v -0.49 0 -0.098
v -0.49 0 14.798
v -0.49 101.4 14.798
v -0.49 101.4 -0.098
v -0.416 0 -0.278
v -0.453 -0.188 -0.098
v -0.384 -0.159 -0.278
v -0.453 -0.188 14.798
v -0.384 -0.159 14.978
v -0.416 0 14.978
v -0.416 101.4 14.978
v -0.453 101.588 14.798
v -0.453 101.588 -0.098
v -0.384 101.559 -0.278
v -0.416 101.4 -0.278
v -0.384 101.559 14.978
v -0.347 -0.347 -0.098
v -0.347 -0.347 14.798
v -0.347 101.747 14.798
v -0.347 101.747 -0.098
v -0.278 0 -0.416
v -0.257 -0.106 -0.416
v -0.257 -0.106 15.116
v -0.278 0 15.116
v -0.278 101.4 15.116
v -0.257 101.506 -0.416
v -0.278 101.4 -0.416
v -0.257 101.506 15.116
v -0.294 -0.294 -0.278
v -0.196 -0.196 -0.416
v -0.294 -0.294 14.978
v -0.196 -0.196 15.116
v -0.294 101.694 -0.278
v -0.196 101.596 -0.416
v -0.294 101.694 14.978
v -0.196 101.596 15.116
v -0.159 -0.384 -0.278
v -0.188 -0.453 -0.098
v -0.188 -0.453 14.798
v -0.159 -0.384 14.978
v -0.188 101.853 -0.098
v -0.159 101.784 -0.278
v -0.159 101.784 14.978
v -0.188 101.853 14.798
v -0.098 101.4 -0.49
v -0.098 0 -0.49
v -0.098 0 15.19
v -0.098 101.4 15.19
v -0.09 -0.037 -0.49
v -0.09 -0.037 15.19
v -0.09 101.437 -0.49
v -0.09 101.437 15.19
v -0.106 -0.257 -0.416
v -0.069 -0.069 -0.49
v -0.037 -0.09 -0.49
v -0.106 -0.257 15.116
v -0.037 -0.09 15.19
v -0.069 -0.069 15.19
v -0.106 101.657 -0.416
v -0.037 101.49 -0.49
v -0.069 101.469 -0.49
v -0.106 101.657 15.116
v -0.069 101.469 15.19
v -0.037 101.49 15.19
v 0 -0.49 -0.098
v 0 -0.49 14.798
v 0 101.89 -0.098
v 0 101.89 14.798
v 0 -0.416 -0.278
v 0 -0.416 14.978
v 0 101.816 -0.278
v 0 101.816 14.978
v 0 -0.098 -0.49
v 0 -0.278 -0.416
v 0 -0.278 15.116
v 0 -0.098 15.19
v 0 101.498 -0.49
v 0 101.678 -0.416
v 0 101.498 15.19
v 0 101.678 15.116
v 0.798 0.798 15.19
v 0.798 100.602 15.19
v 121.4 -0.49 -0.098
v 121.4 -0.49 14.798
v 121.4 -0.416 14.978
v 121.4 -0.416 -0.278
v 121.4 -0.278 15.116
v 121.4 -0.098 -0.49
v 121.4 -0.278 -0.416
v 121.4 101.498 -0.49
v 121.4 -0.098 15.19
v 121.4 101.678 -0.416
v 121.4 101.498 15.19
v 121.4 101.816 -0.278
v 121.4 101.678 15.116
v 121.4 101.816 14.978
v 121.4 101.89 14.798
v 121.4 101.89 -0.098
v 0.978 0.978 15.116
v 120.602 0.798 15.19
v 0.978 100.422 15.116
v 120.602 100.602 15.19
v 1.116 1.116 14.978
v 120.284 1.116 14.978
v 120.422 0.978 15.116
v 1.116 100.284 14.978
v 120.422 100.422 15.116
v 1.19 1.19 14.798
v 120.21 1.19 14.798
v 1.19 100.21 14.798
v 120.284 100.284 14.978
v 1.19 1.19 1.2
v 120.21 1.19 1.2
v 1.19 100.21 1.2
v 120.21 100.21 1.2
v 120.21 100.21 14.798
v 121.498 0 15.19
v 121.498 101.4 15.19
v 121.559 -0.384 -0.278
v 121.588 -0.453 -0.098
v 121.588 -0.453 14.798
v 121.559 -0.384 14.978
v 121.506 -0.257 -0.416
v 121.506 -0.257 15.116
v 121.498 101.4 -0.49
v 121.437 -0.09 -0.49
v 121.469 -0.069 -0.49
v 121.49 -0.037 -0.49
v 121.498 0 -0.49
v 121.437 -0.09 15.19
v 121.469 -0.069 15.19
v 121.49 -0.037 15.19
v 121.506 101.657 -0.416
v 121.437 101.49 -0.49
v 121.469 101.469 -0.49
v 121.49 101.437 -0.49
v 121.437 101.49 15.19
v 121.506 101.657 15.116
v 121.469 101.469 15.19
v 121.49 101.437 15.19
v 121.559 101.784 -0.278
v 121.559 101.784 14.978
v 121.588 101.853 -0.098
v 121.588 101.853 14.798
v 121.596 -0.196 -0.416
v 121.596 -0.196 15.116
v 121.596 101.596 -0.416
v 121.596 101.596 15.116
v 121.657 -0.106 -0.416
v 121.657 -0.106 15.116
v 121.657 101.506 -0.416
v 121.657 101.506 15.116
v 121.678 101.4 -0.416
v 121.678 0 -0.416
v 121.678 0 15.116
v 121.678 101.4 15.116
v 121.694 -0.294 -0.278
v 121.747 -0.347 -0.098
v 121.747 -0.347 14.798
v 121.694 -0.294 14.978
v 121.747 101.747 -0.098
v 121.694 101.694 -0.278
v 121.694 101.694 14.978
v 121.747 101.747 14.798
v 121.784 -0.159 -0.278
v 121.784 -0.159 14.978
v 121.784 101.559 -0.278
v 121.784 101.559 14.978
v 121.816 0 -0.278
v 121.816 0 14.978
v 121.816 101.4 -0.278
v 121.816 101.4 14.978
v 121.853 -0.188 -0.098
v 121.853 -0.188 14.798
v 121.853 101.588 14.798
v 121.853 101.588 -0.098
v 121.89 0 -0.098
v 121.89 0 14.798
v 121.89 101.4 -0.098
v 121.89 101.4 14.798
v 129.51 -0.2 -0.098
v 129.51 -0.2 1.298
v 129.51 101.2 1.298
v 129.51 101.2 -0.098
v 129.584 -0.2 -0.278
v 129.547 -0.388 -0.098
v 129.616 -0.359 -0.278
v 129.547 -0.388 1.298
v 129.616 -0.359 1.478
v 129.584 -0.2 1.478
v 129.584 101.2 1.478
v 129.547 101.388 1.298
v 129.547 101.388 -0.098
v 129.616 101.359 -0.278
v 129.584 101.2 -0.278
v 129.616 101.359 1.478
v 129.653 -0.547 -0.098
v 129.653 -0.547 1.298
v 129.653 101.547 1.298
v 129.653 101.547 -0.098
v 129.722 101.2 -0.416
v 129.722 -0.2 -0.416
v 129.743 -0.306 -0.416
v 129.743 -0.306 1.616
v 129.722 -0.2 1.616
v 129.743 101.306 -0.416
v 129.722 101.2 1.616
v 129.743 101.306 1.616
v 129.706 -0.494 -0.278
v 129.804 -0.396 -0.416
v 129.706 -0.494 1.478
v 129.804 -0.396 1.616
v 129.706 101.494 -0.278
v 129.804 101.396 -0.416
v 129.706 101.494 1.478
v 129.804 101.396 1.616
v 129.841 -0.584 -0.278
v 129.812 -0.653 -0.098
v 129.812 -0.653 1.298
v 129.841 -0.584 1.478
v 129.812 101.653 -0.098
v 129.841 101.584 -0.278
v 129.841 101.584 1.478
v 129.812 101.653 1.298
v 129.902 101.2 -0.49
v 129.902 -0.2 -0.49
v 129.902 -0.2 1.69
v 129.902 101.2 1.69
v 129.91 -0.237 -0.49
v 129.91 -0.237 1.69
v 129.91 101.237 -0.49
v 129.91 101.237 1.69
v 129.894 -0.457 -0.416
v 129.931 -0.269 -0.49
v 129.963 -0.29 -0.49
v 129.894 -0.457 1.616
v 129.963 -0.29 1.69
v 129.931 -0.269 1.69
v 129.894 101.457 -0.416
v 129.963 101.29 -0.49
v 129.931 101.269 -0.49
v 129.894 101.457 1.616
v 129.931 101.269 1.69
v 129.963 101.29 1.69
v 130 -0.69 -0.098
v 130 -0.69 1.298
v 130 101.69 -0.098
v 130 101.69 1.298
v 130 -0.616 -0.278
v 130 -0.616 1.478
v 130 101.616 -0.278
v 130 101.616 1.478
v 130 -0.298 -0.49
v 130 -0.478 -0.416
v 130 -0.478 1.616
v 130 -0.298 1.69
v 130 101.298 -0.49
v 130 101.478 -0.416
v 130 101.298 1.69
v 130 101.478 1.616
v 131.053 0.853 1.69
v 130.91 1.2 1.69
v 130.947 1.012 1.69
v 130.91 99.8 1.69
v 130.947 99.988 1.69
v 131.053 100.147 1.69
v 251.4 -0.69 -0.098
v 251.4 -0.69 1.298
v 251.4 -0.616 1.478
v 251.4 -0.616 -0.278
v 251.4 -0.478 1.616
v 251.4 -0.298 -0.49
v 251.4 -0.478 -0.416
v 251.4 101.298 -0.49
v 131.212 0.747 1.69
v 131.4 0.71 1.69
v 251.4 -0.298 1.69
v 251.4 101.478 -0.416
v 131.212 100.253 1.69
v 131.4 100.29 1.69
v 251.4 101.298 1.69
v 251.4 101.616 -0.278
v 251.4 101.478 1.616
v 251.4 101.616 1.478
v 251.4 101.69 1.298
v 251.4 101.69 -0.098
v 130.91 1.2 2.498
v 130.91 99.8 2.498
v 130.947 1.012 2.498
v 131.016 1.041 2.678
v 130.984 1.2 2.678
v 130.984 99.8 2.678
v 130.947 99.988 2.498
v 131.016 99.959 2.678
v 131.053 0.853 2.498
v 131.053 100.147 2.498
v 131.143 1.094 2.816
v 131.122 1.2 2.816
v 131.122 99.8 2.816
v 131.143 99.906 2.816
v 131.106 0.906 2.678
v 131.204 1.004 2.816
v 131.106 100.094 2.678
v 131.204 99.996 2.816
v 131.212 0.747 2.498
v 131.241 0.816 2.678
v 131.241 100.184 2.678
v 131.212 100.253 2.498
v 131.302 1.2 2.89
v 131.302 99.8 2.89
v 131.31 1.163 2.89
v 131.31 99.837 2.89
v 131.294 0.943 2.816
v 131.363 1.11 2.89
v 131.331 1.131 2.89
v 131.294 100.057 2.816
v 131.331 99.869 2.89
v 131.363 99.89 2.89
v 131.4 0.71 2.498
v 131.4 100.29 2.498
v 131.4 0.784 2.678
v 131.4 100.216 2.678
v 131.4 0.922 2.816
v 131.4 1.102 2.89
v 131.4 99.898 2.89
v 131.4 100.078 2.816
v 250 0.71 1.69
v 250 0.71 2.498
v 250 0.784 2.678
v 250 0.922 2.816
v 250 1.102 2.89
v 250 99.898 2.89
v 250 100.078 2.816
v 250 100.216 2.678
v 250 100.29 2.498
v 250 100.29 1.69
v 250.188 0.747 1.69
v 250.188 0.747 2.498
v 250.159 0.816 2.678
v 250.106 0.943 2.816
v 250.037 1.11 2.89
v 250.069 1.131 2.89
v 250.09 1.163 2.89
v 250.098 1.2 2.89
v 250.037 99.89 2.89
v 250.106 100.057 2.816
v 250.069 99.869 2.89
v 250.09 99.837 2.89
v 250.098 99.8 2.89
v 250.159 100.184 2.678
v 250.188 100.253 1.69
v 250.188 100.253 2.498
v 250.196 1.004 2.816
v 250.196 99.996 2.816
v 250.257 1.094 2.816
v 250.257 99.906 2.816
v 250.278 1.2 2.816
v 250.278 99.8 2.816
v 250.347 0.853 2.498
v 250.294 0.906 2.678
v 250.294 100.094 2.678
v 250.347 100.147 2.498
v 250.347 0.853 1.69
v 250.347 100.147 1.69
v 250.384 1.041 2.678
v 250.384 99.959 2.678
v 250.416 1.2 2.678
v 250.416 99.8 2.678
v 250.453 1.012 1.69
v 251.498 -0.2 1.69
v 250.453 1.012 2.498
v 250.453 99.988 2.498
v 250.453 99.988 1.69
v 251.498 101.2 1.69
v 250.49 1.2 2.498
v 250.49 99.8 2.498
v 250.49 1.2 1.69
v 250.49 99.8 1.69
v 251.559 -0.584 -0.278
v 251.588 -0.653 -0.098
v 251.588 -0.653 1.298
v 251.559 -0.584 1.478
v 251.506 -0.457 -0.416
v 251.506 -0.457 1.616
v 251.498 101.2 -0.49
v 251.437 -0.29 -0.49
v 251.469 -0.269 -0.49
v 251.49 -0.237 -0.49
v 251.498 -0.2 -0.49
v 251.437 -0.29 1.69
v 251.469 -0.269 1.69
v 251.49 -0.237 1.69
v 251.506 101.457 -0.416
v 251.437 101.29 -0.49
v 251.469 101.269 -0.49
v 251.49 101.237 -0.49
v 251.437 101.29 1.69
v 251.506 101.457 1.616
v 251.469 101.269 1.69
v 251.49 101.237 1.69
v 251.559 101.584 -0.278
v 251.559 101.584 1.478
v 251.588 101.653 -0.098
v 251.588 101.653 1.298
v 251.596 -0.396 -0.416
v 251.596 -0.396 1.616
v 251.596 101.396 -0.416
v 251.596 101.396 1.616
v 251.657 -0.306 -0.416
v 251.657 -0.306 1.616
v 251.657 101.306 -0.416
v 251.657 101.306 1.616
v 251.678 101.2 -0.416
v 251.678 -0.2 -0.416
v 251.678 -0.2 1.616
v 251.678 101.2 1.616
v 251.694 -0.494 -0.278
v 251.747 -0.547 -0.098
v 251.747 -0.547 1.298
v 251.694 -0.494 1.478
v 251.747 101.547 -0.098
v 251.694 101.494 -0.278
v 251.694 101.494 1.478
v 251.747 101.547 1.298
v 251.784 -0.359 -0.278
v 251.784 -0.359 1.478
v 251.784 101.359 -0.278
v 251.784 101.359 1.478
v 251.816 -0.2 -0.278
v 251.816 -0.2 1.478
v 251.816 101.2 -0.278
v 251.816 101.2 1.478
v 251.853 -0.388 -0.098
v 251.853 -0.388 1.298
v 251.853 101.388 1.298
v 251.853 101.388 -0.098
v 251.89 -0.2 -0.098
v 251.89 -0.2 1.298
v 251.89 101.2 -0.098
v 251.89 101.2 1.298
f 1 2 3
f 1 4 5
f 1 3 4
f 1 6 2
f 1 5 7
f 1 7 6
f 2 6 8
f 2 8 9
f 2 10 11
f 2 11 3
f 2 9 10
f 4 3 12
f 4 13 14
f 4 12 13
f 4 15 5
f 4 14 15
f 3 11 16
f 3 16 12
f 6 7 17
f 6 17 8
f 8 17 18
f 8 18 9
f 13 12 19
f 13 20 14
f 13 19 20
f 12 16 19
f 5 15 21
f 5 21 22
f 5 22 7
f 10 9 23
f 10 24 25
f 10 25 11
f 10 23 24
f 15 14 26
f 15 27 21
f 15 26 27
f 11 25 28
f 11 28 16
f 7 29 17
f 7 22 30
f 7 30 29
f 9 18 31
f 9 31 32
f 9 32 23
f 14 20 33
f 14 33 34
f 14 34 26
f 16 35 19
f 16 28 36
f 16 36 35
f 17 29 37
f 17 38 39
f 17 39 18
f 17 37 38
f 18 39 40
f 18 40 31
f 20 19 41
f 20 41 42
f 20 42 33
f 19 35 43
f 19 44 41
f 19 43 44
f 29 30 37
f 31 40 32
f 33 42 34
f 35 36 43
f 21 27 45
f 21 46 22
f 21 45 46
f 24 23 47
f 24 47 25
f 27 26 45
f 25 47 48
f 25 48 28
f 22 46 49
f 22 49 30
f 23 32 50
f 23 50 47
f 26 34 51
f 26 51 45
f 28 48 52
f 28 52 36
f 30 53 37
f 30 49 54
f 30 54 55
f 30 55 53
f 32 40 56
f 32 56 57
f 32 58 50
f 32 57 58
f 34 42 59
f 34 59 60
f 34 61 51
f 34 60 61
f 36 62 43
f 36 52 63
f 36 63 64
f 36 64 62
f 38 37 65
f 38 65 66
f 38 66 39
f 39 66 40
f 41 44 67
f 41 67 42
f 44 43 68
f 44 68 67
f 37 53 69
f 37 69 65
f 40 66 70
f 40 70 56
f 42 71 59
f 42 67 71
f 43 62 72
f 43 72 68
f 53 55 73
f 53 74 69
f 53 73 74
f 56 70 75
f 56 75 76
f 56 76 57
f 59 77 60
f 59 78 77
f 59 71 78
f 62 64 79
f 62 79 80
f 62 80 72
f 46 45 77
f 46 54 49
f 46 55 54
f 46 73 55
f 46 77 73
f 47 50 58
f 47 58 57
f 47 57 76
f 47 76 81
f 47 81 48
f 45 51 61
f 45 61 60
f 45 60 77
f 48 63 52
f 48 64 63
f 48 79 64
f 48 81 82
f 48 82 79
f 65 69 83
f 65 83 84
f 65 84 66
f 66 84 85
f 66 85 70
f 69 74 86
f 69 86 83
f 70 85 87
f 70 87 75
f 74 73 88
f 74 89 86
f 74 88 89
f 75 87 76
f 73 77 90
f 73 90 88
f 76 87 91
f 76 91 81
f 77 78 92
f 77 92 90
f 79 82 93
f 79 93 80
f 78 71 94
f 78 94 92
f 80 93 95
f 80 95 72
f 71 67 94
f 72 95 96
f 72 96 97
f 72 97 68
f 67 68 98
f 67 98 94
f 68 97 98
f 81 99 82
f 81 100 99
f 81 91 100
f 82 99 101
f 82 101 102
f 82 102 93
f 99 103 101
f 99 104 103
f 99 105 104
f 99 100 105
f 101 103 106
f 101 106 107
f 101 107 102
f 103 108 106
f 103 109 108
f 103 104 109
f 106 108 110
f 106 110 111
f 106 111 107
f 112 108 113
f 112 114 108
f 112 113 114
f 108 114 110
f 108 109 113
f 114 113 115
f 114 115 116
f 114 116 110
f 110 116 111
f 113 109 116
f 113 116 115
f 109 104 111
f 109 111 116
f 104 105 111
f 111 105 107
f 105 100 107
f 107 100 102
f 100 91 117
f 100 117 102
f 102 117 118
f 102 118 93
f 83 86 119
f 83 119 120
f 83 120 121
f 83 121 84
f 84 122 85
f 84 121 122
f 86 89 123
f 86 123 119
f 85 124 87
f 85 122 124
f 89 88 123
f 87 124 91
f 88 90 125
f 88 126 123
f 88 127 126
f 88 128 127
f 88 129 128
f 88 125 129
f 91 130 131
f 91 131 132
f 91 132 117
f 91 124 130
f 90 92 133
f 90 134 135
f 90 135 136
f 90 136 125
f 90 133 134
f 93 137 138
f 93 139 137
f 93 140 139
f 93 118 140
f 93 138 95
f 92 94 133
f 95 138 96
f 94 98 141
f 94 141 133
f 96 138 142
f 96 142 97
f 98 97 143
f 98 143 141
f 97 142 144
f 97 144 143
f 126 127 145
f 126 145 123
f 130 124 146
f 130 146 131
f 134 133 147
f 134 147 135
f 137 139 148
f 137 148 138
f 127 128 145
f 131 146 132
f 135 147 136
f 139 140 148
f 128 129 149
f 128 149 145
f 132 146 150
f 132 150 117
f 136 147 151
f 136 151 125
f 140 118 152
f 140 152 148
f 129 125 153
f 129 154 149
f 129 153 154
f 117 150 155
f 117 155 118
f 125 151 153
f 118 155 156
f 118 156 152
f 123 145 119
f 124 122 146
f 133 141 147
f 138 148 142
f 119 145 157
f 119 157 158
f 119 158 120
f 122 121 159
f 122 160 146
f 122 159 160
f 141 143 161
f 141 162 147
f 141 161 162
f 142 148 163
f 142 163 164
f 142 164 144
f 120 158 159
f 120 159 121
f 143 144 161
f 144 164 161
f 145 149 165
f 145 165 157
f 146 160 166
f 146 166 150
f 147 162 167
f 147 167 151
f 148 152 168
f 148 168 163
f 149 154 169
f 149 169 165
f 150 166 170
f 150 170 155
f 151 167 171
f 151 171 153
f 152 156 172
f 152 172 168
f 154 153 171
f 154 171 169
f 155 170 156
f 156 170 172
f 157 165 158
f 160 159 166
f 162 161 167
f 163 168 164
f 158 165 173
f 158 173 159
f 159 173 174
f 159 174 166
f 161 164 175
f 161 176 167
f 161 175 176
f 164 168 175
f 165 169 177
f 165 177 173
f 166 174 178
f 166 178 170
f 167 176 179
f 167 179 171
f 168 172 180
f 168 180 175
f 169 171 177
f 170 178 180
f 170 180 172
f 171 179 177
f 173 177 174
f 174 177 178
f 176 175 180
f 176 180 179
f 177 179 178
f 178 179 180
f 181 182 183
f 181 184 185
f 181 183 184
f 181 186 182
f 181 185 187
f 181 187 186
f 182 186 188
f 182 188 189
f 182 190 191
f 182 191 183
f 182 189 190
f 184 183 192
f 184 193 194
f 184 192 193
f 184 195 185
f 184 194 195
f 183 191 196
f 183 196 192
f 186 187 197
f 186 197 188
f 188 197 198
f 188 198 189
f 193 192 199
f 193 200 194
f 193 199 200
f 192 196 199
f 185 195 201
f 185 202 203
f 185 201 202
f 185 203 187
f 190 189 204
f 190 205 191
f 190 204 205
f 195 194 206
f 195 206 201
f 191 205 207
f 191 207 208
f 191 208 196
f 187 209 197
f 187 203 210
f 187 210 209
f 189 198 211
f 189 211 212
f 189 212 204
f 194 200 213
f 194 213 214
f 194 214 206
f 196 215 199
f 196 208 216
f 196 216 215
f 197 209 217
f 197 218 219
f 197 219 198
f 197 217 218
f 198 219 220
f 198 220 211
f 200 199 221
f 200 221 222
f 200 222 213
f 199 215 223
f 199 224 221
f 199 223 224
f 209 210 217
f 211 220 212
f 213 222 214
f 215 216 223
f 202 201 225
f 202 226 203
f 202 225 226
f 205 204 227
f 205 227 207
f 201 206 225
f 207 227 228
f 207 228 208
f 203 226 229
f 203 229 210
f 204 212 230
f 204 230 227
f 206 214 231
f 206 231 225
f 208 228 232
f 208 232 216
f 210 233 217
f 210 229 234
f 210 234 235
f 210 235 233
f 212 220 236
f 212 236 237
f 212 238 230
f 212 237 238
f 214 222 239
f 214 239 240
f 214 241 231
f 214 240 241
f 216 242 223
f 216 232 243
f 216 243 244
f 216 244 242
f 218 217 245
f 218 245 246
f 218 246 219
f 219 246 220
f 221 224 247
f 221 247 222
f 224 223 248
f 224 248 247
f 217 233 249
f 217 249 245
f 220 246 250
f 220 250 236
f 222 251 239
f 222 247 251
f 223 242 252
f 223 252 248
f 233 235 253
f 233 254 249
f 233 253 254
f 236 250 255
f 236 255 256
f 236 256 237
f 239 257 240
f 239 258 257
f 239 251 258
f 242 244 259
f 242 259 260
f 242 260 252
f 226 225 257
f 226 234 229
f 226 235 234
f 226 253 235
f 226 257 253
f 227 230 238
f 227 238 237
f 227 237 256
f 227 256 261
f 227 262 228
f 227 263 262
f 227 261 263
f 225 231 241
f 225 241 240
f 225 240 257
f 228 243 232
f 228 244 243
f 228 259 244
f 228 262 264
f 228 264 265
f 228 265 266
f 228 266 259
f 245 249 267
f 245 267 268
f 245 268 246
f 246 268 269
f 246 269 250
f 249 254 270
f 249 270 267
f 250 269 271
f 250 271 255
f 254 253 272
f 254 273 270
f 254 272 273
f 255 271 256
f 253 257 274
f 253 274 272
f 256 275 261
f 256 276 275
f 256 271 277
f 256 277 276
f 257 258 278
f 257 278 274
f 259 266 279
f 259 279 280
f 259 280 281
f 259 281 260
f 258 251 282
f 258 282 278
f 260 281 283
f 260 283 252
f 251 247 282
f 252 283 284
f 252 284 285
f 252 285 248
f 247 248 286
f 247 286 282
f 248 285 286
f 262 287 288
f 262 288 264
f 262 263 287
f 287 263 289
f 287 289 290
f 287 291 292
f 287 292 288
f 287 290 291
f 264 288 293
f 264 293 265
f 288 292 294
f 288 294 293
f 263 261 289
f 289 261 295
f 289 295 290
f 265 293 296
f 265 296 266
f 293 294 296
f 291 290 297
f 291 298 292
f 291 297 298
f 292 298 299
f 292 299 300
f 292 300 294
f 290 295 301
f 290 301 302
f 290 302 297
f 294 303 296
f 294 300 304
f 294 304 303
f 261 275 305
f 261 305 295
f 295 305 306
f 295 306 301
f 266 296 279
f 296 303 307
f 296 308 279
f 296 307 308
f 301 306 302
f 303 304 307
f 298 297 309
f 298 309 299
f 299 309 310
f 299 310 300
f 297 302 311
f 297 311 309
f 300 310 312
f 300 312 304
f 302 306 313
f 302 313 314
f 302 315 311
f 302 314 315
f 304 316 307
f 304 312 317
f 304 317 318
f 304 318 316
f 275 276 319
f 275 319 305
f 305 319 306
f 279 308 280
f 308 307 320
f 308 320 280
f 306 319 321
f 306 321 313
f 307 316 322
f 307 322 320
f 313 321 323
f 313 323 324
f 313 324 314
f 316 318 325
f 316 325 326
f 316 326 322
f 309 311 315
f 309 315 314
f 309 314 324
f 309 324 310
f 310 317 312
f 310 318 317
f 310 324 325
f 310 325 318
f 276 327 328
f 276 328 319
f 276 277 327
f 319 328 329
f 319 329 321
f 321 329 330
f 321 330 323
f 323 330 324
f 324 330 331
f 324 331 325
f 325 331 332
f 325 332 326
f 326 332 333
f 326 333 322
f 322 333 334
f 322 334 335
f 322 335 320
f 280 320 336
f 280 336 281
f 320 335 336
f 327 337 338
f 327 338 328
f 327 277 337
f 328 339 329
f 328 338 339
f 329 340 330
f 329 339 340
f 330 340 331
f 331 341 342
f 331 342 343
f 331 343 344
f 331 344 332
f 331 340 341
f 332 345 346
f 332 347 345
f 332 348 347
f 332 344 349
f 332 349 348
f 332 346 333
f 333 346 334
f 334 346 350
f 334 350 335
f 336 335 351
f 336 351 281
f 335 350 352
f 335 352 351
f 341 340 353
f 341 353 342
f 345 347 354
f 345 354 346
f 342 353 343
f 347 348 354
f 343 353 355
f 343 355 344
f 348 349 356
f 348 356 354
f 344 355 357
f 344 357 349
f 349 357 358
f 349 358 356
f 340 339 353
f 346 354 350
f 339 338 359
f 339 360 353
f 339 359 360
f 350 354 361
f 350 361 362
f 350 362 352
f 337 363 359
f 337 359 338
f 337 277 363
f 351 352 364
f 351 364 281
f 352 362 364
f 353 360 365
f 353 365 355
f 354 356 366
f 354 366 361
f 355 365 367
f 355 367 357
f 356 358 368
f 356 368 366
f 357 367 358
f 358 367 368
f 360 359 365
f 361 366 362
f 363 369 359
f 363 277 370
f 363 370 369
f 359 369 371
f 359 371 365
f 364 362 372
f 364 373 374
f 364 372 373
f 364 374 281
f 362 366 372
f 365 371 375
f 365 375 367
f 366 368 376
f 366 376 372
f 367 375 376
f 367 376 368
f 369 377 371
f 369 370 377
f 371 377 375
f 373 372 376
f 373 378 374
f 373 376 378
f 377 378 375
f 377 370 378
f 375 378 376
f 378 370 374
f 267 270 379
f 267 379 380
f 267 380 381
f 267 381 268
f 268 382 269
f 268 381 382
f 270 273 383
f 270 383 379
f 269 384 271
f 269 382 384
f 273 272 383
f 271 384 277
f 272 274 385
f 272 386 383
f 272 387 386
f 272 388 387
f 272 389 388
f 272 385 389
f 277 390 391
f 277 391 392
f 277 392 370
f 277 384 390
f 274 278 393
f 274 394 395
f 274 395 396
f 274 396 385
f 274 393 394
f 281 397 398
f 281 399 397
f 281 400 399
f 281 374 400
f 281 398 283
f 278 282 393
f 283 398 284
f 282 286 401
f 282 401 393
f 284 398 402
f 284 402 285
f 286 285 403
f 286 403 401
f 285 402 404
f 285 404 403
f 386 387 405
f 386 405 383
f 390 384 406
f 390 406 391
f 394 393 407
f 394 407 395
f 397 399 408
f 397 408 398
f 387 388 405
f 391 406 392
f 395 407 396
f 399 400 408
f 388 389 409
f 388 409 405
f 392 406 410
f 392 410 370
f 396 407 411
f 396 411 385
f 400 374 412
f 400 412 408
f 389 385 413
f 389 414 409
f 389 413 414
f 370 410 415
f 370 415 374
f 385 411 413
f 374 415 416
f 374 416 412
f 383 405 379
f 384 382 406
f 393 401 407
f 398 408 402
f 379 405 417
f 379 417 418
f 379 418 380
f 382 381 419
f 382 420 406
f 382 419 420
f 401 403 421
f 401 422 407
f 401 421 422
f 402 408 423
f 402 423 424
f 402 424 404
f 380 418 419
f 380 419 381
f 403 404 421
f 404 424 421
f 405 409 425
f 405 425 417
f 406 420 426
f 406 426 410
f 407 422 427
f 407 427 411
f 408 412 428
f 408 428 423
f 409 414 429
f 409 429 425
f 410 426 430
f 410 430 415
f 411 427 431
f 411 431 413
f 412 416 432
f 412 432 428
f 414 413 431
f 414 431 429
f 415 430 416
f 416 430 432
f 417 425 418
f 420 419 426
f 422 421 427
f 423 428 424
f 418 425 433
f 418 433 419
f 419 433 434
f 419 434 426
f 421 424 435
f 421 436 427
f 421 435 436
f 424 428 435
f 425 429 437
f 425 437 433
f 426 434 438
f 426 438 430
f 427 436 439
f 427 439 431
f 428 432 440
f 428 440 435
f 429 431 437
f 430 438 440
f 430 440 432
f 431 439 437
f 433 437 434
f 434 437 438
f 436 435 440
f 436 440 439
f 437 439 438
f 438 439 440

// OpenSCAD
/* [Pallete Internal Size] */
width=120;
depth=100;
height=14;

/* [Settings] */
thickness=1.2;
clearance=0.4;

/* [Preview Before Print] */
preview=false;

/* [Hidden] */
rounded_offset=0.5;
spacing=2*thickness;

module box(w, d, h, t) {
    spacing=2*t;
    cut = 0.01;
    difference() {
        cube([w + spacing, d + spacing, h + t]);
        translate([t, t, t+cut]) cube([w, d, h]);
    }
}

module pallete() {
    minkowski() {
        sphere(r=0.5, $fn=16);
        box(width, depth, height, thickness-rounded_offset);
    }
}

module lid() {
    lid_w = width-rounded_offset*2;
    lid_d = depth-rounded_offset*2;
    lid_h = thickness;
    dxdy = clearance/2;
    translate([0, 0, height+spacing/2+4])
        minkowski() {
            sphere(r=0.5, $fn=16);
            
            union() {
                cube([lid_w+spacing, lid_d+spacing, lid_h]);
                
                translate([thickness+dxdy, thickness+dxdy, -thickness])
                    cube([lid_w-clearance, lid_d-clearance, thickness*2]);
            }
        }
}

pallete();
if (!preview) {
    // the height where the lid is originaly positioned
    dz = height+ (spacing/2) + 4 + thickness;
    rotate([180, 0, 0])
        translate([width+10, -depth-thickness, -(dz)])
            lid();
} else {
    lid();
}
